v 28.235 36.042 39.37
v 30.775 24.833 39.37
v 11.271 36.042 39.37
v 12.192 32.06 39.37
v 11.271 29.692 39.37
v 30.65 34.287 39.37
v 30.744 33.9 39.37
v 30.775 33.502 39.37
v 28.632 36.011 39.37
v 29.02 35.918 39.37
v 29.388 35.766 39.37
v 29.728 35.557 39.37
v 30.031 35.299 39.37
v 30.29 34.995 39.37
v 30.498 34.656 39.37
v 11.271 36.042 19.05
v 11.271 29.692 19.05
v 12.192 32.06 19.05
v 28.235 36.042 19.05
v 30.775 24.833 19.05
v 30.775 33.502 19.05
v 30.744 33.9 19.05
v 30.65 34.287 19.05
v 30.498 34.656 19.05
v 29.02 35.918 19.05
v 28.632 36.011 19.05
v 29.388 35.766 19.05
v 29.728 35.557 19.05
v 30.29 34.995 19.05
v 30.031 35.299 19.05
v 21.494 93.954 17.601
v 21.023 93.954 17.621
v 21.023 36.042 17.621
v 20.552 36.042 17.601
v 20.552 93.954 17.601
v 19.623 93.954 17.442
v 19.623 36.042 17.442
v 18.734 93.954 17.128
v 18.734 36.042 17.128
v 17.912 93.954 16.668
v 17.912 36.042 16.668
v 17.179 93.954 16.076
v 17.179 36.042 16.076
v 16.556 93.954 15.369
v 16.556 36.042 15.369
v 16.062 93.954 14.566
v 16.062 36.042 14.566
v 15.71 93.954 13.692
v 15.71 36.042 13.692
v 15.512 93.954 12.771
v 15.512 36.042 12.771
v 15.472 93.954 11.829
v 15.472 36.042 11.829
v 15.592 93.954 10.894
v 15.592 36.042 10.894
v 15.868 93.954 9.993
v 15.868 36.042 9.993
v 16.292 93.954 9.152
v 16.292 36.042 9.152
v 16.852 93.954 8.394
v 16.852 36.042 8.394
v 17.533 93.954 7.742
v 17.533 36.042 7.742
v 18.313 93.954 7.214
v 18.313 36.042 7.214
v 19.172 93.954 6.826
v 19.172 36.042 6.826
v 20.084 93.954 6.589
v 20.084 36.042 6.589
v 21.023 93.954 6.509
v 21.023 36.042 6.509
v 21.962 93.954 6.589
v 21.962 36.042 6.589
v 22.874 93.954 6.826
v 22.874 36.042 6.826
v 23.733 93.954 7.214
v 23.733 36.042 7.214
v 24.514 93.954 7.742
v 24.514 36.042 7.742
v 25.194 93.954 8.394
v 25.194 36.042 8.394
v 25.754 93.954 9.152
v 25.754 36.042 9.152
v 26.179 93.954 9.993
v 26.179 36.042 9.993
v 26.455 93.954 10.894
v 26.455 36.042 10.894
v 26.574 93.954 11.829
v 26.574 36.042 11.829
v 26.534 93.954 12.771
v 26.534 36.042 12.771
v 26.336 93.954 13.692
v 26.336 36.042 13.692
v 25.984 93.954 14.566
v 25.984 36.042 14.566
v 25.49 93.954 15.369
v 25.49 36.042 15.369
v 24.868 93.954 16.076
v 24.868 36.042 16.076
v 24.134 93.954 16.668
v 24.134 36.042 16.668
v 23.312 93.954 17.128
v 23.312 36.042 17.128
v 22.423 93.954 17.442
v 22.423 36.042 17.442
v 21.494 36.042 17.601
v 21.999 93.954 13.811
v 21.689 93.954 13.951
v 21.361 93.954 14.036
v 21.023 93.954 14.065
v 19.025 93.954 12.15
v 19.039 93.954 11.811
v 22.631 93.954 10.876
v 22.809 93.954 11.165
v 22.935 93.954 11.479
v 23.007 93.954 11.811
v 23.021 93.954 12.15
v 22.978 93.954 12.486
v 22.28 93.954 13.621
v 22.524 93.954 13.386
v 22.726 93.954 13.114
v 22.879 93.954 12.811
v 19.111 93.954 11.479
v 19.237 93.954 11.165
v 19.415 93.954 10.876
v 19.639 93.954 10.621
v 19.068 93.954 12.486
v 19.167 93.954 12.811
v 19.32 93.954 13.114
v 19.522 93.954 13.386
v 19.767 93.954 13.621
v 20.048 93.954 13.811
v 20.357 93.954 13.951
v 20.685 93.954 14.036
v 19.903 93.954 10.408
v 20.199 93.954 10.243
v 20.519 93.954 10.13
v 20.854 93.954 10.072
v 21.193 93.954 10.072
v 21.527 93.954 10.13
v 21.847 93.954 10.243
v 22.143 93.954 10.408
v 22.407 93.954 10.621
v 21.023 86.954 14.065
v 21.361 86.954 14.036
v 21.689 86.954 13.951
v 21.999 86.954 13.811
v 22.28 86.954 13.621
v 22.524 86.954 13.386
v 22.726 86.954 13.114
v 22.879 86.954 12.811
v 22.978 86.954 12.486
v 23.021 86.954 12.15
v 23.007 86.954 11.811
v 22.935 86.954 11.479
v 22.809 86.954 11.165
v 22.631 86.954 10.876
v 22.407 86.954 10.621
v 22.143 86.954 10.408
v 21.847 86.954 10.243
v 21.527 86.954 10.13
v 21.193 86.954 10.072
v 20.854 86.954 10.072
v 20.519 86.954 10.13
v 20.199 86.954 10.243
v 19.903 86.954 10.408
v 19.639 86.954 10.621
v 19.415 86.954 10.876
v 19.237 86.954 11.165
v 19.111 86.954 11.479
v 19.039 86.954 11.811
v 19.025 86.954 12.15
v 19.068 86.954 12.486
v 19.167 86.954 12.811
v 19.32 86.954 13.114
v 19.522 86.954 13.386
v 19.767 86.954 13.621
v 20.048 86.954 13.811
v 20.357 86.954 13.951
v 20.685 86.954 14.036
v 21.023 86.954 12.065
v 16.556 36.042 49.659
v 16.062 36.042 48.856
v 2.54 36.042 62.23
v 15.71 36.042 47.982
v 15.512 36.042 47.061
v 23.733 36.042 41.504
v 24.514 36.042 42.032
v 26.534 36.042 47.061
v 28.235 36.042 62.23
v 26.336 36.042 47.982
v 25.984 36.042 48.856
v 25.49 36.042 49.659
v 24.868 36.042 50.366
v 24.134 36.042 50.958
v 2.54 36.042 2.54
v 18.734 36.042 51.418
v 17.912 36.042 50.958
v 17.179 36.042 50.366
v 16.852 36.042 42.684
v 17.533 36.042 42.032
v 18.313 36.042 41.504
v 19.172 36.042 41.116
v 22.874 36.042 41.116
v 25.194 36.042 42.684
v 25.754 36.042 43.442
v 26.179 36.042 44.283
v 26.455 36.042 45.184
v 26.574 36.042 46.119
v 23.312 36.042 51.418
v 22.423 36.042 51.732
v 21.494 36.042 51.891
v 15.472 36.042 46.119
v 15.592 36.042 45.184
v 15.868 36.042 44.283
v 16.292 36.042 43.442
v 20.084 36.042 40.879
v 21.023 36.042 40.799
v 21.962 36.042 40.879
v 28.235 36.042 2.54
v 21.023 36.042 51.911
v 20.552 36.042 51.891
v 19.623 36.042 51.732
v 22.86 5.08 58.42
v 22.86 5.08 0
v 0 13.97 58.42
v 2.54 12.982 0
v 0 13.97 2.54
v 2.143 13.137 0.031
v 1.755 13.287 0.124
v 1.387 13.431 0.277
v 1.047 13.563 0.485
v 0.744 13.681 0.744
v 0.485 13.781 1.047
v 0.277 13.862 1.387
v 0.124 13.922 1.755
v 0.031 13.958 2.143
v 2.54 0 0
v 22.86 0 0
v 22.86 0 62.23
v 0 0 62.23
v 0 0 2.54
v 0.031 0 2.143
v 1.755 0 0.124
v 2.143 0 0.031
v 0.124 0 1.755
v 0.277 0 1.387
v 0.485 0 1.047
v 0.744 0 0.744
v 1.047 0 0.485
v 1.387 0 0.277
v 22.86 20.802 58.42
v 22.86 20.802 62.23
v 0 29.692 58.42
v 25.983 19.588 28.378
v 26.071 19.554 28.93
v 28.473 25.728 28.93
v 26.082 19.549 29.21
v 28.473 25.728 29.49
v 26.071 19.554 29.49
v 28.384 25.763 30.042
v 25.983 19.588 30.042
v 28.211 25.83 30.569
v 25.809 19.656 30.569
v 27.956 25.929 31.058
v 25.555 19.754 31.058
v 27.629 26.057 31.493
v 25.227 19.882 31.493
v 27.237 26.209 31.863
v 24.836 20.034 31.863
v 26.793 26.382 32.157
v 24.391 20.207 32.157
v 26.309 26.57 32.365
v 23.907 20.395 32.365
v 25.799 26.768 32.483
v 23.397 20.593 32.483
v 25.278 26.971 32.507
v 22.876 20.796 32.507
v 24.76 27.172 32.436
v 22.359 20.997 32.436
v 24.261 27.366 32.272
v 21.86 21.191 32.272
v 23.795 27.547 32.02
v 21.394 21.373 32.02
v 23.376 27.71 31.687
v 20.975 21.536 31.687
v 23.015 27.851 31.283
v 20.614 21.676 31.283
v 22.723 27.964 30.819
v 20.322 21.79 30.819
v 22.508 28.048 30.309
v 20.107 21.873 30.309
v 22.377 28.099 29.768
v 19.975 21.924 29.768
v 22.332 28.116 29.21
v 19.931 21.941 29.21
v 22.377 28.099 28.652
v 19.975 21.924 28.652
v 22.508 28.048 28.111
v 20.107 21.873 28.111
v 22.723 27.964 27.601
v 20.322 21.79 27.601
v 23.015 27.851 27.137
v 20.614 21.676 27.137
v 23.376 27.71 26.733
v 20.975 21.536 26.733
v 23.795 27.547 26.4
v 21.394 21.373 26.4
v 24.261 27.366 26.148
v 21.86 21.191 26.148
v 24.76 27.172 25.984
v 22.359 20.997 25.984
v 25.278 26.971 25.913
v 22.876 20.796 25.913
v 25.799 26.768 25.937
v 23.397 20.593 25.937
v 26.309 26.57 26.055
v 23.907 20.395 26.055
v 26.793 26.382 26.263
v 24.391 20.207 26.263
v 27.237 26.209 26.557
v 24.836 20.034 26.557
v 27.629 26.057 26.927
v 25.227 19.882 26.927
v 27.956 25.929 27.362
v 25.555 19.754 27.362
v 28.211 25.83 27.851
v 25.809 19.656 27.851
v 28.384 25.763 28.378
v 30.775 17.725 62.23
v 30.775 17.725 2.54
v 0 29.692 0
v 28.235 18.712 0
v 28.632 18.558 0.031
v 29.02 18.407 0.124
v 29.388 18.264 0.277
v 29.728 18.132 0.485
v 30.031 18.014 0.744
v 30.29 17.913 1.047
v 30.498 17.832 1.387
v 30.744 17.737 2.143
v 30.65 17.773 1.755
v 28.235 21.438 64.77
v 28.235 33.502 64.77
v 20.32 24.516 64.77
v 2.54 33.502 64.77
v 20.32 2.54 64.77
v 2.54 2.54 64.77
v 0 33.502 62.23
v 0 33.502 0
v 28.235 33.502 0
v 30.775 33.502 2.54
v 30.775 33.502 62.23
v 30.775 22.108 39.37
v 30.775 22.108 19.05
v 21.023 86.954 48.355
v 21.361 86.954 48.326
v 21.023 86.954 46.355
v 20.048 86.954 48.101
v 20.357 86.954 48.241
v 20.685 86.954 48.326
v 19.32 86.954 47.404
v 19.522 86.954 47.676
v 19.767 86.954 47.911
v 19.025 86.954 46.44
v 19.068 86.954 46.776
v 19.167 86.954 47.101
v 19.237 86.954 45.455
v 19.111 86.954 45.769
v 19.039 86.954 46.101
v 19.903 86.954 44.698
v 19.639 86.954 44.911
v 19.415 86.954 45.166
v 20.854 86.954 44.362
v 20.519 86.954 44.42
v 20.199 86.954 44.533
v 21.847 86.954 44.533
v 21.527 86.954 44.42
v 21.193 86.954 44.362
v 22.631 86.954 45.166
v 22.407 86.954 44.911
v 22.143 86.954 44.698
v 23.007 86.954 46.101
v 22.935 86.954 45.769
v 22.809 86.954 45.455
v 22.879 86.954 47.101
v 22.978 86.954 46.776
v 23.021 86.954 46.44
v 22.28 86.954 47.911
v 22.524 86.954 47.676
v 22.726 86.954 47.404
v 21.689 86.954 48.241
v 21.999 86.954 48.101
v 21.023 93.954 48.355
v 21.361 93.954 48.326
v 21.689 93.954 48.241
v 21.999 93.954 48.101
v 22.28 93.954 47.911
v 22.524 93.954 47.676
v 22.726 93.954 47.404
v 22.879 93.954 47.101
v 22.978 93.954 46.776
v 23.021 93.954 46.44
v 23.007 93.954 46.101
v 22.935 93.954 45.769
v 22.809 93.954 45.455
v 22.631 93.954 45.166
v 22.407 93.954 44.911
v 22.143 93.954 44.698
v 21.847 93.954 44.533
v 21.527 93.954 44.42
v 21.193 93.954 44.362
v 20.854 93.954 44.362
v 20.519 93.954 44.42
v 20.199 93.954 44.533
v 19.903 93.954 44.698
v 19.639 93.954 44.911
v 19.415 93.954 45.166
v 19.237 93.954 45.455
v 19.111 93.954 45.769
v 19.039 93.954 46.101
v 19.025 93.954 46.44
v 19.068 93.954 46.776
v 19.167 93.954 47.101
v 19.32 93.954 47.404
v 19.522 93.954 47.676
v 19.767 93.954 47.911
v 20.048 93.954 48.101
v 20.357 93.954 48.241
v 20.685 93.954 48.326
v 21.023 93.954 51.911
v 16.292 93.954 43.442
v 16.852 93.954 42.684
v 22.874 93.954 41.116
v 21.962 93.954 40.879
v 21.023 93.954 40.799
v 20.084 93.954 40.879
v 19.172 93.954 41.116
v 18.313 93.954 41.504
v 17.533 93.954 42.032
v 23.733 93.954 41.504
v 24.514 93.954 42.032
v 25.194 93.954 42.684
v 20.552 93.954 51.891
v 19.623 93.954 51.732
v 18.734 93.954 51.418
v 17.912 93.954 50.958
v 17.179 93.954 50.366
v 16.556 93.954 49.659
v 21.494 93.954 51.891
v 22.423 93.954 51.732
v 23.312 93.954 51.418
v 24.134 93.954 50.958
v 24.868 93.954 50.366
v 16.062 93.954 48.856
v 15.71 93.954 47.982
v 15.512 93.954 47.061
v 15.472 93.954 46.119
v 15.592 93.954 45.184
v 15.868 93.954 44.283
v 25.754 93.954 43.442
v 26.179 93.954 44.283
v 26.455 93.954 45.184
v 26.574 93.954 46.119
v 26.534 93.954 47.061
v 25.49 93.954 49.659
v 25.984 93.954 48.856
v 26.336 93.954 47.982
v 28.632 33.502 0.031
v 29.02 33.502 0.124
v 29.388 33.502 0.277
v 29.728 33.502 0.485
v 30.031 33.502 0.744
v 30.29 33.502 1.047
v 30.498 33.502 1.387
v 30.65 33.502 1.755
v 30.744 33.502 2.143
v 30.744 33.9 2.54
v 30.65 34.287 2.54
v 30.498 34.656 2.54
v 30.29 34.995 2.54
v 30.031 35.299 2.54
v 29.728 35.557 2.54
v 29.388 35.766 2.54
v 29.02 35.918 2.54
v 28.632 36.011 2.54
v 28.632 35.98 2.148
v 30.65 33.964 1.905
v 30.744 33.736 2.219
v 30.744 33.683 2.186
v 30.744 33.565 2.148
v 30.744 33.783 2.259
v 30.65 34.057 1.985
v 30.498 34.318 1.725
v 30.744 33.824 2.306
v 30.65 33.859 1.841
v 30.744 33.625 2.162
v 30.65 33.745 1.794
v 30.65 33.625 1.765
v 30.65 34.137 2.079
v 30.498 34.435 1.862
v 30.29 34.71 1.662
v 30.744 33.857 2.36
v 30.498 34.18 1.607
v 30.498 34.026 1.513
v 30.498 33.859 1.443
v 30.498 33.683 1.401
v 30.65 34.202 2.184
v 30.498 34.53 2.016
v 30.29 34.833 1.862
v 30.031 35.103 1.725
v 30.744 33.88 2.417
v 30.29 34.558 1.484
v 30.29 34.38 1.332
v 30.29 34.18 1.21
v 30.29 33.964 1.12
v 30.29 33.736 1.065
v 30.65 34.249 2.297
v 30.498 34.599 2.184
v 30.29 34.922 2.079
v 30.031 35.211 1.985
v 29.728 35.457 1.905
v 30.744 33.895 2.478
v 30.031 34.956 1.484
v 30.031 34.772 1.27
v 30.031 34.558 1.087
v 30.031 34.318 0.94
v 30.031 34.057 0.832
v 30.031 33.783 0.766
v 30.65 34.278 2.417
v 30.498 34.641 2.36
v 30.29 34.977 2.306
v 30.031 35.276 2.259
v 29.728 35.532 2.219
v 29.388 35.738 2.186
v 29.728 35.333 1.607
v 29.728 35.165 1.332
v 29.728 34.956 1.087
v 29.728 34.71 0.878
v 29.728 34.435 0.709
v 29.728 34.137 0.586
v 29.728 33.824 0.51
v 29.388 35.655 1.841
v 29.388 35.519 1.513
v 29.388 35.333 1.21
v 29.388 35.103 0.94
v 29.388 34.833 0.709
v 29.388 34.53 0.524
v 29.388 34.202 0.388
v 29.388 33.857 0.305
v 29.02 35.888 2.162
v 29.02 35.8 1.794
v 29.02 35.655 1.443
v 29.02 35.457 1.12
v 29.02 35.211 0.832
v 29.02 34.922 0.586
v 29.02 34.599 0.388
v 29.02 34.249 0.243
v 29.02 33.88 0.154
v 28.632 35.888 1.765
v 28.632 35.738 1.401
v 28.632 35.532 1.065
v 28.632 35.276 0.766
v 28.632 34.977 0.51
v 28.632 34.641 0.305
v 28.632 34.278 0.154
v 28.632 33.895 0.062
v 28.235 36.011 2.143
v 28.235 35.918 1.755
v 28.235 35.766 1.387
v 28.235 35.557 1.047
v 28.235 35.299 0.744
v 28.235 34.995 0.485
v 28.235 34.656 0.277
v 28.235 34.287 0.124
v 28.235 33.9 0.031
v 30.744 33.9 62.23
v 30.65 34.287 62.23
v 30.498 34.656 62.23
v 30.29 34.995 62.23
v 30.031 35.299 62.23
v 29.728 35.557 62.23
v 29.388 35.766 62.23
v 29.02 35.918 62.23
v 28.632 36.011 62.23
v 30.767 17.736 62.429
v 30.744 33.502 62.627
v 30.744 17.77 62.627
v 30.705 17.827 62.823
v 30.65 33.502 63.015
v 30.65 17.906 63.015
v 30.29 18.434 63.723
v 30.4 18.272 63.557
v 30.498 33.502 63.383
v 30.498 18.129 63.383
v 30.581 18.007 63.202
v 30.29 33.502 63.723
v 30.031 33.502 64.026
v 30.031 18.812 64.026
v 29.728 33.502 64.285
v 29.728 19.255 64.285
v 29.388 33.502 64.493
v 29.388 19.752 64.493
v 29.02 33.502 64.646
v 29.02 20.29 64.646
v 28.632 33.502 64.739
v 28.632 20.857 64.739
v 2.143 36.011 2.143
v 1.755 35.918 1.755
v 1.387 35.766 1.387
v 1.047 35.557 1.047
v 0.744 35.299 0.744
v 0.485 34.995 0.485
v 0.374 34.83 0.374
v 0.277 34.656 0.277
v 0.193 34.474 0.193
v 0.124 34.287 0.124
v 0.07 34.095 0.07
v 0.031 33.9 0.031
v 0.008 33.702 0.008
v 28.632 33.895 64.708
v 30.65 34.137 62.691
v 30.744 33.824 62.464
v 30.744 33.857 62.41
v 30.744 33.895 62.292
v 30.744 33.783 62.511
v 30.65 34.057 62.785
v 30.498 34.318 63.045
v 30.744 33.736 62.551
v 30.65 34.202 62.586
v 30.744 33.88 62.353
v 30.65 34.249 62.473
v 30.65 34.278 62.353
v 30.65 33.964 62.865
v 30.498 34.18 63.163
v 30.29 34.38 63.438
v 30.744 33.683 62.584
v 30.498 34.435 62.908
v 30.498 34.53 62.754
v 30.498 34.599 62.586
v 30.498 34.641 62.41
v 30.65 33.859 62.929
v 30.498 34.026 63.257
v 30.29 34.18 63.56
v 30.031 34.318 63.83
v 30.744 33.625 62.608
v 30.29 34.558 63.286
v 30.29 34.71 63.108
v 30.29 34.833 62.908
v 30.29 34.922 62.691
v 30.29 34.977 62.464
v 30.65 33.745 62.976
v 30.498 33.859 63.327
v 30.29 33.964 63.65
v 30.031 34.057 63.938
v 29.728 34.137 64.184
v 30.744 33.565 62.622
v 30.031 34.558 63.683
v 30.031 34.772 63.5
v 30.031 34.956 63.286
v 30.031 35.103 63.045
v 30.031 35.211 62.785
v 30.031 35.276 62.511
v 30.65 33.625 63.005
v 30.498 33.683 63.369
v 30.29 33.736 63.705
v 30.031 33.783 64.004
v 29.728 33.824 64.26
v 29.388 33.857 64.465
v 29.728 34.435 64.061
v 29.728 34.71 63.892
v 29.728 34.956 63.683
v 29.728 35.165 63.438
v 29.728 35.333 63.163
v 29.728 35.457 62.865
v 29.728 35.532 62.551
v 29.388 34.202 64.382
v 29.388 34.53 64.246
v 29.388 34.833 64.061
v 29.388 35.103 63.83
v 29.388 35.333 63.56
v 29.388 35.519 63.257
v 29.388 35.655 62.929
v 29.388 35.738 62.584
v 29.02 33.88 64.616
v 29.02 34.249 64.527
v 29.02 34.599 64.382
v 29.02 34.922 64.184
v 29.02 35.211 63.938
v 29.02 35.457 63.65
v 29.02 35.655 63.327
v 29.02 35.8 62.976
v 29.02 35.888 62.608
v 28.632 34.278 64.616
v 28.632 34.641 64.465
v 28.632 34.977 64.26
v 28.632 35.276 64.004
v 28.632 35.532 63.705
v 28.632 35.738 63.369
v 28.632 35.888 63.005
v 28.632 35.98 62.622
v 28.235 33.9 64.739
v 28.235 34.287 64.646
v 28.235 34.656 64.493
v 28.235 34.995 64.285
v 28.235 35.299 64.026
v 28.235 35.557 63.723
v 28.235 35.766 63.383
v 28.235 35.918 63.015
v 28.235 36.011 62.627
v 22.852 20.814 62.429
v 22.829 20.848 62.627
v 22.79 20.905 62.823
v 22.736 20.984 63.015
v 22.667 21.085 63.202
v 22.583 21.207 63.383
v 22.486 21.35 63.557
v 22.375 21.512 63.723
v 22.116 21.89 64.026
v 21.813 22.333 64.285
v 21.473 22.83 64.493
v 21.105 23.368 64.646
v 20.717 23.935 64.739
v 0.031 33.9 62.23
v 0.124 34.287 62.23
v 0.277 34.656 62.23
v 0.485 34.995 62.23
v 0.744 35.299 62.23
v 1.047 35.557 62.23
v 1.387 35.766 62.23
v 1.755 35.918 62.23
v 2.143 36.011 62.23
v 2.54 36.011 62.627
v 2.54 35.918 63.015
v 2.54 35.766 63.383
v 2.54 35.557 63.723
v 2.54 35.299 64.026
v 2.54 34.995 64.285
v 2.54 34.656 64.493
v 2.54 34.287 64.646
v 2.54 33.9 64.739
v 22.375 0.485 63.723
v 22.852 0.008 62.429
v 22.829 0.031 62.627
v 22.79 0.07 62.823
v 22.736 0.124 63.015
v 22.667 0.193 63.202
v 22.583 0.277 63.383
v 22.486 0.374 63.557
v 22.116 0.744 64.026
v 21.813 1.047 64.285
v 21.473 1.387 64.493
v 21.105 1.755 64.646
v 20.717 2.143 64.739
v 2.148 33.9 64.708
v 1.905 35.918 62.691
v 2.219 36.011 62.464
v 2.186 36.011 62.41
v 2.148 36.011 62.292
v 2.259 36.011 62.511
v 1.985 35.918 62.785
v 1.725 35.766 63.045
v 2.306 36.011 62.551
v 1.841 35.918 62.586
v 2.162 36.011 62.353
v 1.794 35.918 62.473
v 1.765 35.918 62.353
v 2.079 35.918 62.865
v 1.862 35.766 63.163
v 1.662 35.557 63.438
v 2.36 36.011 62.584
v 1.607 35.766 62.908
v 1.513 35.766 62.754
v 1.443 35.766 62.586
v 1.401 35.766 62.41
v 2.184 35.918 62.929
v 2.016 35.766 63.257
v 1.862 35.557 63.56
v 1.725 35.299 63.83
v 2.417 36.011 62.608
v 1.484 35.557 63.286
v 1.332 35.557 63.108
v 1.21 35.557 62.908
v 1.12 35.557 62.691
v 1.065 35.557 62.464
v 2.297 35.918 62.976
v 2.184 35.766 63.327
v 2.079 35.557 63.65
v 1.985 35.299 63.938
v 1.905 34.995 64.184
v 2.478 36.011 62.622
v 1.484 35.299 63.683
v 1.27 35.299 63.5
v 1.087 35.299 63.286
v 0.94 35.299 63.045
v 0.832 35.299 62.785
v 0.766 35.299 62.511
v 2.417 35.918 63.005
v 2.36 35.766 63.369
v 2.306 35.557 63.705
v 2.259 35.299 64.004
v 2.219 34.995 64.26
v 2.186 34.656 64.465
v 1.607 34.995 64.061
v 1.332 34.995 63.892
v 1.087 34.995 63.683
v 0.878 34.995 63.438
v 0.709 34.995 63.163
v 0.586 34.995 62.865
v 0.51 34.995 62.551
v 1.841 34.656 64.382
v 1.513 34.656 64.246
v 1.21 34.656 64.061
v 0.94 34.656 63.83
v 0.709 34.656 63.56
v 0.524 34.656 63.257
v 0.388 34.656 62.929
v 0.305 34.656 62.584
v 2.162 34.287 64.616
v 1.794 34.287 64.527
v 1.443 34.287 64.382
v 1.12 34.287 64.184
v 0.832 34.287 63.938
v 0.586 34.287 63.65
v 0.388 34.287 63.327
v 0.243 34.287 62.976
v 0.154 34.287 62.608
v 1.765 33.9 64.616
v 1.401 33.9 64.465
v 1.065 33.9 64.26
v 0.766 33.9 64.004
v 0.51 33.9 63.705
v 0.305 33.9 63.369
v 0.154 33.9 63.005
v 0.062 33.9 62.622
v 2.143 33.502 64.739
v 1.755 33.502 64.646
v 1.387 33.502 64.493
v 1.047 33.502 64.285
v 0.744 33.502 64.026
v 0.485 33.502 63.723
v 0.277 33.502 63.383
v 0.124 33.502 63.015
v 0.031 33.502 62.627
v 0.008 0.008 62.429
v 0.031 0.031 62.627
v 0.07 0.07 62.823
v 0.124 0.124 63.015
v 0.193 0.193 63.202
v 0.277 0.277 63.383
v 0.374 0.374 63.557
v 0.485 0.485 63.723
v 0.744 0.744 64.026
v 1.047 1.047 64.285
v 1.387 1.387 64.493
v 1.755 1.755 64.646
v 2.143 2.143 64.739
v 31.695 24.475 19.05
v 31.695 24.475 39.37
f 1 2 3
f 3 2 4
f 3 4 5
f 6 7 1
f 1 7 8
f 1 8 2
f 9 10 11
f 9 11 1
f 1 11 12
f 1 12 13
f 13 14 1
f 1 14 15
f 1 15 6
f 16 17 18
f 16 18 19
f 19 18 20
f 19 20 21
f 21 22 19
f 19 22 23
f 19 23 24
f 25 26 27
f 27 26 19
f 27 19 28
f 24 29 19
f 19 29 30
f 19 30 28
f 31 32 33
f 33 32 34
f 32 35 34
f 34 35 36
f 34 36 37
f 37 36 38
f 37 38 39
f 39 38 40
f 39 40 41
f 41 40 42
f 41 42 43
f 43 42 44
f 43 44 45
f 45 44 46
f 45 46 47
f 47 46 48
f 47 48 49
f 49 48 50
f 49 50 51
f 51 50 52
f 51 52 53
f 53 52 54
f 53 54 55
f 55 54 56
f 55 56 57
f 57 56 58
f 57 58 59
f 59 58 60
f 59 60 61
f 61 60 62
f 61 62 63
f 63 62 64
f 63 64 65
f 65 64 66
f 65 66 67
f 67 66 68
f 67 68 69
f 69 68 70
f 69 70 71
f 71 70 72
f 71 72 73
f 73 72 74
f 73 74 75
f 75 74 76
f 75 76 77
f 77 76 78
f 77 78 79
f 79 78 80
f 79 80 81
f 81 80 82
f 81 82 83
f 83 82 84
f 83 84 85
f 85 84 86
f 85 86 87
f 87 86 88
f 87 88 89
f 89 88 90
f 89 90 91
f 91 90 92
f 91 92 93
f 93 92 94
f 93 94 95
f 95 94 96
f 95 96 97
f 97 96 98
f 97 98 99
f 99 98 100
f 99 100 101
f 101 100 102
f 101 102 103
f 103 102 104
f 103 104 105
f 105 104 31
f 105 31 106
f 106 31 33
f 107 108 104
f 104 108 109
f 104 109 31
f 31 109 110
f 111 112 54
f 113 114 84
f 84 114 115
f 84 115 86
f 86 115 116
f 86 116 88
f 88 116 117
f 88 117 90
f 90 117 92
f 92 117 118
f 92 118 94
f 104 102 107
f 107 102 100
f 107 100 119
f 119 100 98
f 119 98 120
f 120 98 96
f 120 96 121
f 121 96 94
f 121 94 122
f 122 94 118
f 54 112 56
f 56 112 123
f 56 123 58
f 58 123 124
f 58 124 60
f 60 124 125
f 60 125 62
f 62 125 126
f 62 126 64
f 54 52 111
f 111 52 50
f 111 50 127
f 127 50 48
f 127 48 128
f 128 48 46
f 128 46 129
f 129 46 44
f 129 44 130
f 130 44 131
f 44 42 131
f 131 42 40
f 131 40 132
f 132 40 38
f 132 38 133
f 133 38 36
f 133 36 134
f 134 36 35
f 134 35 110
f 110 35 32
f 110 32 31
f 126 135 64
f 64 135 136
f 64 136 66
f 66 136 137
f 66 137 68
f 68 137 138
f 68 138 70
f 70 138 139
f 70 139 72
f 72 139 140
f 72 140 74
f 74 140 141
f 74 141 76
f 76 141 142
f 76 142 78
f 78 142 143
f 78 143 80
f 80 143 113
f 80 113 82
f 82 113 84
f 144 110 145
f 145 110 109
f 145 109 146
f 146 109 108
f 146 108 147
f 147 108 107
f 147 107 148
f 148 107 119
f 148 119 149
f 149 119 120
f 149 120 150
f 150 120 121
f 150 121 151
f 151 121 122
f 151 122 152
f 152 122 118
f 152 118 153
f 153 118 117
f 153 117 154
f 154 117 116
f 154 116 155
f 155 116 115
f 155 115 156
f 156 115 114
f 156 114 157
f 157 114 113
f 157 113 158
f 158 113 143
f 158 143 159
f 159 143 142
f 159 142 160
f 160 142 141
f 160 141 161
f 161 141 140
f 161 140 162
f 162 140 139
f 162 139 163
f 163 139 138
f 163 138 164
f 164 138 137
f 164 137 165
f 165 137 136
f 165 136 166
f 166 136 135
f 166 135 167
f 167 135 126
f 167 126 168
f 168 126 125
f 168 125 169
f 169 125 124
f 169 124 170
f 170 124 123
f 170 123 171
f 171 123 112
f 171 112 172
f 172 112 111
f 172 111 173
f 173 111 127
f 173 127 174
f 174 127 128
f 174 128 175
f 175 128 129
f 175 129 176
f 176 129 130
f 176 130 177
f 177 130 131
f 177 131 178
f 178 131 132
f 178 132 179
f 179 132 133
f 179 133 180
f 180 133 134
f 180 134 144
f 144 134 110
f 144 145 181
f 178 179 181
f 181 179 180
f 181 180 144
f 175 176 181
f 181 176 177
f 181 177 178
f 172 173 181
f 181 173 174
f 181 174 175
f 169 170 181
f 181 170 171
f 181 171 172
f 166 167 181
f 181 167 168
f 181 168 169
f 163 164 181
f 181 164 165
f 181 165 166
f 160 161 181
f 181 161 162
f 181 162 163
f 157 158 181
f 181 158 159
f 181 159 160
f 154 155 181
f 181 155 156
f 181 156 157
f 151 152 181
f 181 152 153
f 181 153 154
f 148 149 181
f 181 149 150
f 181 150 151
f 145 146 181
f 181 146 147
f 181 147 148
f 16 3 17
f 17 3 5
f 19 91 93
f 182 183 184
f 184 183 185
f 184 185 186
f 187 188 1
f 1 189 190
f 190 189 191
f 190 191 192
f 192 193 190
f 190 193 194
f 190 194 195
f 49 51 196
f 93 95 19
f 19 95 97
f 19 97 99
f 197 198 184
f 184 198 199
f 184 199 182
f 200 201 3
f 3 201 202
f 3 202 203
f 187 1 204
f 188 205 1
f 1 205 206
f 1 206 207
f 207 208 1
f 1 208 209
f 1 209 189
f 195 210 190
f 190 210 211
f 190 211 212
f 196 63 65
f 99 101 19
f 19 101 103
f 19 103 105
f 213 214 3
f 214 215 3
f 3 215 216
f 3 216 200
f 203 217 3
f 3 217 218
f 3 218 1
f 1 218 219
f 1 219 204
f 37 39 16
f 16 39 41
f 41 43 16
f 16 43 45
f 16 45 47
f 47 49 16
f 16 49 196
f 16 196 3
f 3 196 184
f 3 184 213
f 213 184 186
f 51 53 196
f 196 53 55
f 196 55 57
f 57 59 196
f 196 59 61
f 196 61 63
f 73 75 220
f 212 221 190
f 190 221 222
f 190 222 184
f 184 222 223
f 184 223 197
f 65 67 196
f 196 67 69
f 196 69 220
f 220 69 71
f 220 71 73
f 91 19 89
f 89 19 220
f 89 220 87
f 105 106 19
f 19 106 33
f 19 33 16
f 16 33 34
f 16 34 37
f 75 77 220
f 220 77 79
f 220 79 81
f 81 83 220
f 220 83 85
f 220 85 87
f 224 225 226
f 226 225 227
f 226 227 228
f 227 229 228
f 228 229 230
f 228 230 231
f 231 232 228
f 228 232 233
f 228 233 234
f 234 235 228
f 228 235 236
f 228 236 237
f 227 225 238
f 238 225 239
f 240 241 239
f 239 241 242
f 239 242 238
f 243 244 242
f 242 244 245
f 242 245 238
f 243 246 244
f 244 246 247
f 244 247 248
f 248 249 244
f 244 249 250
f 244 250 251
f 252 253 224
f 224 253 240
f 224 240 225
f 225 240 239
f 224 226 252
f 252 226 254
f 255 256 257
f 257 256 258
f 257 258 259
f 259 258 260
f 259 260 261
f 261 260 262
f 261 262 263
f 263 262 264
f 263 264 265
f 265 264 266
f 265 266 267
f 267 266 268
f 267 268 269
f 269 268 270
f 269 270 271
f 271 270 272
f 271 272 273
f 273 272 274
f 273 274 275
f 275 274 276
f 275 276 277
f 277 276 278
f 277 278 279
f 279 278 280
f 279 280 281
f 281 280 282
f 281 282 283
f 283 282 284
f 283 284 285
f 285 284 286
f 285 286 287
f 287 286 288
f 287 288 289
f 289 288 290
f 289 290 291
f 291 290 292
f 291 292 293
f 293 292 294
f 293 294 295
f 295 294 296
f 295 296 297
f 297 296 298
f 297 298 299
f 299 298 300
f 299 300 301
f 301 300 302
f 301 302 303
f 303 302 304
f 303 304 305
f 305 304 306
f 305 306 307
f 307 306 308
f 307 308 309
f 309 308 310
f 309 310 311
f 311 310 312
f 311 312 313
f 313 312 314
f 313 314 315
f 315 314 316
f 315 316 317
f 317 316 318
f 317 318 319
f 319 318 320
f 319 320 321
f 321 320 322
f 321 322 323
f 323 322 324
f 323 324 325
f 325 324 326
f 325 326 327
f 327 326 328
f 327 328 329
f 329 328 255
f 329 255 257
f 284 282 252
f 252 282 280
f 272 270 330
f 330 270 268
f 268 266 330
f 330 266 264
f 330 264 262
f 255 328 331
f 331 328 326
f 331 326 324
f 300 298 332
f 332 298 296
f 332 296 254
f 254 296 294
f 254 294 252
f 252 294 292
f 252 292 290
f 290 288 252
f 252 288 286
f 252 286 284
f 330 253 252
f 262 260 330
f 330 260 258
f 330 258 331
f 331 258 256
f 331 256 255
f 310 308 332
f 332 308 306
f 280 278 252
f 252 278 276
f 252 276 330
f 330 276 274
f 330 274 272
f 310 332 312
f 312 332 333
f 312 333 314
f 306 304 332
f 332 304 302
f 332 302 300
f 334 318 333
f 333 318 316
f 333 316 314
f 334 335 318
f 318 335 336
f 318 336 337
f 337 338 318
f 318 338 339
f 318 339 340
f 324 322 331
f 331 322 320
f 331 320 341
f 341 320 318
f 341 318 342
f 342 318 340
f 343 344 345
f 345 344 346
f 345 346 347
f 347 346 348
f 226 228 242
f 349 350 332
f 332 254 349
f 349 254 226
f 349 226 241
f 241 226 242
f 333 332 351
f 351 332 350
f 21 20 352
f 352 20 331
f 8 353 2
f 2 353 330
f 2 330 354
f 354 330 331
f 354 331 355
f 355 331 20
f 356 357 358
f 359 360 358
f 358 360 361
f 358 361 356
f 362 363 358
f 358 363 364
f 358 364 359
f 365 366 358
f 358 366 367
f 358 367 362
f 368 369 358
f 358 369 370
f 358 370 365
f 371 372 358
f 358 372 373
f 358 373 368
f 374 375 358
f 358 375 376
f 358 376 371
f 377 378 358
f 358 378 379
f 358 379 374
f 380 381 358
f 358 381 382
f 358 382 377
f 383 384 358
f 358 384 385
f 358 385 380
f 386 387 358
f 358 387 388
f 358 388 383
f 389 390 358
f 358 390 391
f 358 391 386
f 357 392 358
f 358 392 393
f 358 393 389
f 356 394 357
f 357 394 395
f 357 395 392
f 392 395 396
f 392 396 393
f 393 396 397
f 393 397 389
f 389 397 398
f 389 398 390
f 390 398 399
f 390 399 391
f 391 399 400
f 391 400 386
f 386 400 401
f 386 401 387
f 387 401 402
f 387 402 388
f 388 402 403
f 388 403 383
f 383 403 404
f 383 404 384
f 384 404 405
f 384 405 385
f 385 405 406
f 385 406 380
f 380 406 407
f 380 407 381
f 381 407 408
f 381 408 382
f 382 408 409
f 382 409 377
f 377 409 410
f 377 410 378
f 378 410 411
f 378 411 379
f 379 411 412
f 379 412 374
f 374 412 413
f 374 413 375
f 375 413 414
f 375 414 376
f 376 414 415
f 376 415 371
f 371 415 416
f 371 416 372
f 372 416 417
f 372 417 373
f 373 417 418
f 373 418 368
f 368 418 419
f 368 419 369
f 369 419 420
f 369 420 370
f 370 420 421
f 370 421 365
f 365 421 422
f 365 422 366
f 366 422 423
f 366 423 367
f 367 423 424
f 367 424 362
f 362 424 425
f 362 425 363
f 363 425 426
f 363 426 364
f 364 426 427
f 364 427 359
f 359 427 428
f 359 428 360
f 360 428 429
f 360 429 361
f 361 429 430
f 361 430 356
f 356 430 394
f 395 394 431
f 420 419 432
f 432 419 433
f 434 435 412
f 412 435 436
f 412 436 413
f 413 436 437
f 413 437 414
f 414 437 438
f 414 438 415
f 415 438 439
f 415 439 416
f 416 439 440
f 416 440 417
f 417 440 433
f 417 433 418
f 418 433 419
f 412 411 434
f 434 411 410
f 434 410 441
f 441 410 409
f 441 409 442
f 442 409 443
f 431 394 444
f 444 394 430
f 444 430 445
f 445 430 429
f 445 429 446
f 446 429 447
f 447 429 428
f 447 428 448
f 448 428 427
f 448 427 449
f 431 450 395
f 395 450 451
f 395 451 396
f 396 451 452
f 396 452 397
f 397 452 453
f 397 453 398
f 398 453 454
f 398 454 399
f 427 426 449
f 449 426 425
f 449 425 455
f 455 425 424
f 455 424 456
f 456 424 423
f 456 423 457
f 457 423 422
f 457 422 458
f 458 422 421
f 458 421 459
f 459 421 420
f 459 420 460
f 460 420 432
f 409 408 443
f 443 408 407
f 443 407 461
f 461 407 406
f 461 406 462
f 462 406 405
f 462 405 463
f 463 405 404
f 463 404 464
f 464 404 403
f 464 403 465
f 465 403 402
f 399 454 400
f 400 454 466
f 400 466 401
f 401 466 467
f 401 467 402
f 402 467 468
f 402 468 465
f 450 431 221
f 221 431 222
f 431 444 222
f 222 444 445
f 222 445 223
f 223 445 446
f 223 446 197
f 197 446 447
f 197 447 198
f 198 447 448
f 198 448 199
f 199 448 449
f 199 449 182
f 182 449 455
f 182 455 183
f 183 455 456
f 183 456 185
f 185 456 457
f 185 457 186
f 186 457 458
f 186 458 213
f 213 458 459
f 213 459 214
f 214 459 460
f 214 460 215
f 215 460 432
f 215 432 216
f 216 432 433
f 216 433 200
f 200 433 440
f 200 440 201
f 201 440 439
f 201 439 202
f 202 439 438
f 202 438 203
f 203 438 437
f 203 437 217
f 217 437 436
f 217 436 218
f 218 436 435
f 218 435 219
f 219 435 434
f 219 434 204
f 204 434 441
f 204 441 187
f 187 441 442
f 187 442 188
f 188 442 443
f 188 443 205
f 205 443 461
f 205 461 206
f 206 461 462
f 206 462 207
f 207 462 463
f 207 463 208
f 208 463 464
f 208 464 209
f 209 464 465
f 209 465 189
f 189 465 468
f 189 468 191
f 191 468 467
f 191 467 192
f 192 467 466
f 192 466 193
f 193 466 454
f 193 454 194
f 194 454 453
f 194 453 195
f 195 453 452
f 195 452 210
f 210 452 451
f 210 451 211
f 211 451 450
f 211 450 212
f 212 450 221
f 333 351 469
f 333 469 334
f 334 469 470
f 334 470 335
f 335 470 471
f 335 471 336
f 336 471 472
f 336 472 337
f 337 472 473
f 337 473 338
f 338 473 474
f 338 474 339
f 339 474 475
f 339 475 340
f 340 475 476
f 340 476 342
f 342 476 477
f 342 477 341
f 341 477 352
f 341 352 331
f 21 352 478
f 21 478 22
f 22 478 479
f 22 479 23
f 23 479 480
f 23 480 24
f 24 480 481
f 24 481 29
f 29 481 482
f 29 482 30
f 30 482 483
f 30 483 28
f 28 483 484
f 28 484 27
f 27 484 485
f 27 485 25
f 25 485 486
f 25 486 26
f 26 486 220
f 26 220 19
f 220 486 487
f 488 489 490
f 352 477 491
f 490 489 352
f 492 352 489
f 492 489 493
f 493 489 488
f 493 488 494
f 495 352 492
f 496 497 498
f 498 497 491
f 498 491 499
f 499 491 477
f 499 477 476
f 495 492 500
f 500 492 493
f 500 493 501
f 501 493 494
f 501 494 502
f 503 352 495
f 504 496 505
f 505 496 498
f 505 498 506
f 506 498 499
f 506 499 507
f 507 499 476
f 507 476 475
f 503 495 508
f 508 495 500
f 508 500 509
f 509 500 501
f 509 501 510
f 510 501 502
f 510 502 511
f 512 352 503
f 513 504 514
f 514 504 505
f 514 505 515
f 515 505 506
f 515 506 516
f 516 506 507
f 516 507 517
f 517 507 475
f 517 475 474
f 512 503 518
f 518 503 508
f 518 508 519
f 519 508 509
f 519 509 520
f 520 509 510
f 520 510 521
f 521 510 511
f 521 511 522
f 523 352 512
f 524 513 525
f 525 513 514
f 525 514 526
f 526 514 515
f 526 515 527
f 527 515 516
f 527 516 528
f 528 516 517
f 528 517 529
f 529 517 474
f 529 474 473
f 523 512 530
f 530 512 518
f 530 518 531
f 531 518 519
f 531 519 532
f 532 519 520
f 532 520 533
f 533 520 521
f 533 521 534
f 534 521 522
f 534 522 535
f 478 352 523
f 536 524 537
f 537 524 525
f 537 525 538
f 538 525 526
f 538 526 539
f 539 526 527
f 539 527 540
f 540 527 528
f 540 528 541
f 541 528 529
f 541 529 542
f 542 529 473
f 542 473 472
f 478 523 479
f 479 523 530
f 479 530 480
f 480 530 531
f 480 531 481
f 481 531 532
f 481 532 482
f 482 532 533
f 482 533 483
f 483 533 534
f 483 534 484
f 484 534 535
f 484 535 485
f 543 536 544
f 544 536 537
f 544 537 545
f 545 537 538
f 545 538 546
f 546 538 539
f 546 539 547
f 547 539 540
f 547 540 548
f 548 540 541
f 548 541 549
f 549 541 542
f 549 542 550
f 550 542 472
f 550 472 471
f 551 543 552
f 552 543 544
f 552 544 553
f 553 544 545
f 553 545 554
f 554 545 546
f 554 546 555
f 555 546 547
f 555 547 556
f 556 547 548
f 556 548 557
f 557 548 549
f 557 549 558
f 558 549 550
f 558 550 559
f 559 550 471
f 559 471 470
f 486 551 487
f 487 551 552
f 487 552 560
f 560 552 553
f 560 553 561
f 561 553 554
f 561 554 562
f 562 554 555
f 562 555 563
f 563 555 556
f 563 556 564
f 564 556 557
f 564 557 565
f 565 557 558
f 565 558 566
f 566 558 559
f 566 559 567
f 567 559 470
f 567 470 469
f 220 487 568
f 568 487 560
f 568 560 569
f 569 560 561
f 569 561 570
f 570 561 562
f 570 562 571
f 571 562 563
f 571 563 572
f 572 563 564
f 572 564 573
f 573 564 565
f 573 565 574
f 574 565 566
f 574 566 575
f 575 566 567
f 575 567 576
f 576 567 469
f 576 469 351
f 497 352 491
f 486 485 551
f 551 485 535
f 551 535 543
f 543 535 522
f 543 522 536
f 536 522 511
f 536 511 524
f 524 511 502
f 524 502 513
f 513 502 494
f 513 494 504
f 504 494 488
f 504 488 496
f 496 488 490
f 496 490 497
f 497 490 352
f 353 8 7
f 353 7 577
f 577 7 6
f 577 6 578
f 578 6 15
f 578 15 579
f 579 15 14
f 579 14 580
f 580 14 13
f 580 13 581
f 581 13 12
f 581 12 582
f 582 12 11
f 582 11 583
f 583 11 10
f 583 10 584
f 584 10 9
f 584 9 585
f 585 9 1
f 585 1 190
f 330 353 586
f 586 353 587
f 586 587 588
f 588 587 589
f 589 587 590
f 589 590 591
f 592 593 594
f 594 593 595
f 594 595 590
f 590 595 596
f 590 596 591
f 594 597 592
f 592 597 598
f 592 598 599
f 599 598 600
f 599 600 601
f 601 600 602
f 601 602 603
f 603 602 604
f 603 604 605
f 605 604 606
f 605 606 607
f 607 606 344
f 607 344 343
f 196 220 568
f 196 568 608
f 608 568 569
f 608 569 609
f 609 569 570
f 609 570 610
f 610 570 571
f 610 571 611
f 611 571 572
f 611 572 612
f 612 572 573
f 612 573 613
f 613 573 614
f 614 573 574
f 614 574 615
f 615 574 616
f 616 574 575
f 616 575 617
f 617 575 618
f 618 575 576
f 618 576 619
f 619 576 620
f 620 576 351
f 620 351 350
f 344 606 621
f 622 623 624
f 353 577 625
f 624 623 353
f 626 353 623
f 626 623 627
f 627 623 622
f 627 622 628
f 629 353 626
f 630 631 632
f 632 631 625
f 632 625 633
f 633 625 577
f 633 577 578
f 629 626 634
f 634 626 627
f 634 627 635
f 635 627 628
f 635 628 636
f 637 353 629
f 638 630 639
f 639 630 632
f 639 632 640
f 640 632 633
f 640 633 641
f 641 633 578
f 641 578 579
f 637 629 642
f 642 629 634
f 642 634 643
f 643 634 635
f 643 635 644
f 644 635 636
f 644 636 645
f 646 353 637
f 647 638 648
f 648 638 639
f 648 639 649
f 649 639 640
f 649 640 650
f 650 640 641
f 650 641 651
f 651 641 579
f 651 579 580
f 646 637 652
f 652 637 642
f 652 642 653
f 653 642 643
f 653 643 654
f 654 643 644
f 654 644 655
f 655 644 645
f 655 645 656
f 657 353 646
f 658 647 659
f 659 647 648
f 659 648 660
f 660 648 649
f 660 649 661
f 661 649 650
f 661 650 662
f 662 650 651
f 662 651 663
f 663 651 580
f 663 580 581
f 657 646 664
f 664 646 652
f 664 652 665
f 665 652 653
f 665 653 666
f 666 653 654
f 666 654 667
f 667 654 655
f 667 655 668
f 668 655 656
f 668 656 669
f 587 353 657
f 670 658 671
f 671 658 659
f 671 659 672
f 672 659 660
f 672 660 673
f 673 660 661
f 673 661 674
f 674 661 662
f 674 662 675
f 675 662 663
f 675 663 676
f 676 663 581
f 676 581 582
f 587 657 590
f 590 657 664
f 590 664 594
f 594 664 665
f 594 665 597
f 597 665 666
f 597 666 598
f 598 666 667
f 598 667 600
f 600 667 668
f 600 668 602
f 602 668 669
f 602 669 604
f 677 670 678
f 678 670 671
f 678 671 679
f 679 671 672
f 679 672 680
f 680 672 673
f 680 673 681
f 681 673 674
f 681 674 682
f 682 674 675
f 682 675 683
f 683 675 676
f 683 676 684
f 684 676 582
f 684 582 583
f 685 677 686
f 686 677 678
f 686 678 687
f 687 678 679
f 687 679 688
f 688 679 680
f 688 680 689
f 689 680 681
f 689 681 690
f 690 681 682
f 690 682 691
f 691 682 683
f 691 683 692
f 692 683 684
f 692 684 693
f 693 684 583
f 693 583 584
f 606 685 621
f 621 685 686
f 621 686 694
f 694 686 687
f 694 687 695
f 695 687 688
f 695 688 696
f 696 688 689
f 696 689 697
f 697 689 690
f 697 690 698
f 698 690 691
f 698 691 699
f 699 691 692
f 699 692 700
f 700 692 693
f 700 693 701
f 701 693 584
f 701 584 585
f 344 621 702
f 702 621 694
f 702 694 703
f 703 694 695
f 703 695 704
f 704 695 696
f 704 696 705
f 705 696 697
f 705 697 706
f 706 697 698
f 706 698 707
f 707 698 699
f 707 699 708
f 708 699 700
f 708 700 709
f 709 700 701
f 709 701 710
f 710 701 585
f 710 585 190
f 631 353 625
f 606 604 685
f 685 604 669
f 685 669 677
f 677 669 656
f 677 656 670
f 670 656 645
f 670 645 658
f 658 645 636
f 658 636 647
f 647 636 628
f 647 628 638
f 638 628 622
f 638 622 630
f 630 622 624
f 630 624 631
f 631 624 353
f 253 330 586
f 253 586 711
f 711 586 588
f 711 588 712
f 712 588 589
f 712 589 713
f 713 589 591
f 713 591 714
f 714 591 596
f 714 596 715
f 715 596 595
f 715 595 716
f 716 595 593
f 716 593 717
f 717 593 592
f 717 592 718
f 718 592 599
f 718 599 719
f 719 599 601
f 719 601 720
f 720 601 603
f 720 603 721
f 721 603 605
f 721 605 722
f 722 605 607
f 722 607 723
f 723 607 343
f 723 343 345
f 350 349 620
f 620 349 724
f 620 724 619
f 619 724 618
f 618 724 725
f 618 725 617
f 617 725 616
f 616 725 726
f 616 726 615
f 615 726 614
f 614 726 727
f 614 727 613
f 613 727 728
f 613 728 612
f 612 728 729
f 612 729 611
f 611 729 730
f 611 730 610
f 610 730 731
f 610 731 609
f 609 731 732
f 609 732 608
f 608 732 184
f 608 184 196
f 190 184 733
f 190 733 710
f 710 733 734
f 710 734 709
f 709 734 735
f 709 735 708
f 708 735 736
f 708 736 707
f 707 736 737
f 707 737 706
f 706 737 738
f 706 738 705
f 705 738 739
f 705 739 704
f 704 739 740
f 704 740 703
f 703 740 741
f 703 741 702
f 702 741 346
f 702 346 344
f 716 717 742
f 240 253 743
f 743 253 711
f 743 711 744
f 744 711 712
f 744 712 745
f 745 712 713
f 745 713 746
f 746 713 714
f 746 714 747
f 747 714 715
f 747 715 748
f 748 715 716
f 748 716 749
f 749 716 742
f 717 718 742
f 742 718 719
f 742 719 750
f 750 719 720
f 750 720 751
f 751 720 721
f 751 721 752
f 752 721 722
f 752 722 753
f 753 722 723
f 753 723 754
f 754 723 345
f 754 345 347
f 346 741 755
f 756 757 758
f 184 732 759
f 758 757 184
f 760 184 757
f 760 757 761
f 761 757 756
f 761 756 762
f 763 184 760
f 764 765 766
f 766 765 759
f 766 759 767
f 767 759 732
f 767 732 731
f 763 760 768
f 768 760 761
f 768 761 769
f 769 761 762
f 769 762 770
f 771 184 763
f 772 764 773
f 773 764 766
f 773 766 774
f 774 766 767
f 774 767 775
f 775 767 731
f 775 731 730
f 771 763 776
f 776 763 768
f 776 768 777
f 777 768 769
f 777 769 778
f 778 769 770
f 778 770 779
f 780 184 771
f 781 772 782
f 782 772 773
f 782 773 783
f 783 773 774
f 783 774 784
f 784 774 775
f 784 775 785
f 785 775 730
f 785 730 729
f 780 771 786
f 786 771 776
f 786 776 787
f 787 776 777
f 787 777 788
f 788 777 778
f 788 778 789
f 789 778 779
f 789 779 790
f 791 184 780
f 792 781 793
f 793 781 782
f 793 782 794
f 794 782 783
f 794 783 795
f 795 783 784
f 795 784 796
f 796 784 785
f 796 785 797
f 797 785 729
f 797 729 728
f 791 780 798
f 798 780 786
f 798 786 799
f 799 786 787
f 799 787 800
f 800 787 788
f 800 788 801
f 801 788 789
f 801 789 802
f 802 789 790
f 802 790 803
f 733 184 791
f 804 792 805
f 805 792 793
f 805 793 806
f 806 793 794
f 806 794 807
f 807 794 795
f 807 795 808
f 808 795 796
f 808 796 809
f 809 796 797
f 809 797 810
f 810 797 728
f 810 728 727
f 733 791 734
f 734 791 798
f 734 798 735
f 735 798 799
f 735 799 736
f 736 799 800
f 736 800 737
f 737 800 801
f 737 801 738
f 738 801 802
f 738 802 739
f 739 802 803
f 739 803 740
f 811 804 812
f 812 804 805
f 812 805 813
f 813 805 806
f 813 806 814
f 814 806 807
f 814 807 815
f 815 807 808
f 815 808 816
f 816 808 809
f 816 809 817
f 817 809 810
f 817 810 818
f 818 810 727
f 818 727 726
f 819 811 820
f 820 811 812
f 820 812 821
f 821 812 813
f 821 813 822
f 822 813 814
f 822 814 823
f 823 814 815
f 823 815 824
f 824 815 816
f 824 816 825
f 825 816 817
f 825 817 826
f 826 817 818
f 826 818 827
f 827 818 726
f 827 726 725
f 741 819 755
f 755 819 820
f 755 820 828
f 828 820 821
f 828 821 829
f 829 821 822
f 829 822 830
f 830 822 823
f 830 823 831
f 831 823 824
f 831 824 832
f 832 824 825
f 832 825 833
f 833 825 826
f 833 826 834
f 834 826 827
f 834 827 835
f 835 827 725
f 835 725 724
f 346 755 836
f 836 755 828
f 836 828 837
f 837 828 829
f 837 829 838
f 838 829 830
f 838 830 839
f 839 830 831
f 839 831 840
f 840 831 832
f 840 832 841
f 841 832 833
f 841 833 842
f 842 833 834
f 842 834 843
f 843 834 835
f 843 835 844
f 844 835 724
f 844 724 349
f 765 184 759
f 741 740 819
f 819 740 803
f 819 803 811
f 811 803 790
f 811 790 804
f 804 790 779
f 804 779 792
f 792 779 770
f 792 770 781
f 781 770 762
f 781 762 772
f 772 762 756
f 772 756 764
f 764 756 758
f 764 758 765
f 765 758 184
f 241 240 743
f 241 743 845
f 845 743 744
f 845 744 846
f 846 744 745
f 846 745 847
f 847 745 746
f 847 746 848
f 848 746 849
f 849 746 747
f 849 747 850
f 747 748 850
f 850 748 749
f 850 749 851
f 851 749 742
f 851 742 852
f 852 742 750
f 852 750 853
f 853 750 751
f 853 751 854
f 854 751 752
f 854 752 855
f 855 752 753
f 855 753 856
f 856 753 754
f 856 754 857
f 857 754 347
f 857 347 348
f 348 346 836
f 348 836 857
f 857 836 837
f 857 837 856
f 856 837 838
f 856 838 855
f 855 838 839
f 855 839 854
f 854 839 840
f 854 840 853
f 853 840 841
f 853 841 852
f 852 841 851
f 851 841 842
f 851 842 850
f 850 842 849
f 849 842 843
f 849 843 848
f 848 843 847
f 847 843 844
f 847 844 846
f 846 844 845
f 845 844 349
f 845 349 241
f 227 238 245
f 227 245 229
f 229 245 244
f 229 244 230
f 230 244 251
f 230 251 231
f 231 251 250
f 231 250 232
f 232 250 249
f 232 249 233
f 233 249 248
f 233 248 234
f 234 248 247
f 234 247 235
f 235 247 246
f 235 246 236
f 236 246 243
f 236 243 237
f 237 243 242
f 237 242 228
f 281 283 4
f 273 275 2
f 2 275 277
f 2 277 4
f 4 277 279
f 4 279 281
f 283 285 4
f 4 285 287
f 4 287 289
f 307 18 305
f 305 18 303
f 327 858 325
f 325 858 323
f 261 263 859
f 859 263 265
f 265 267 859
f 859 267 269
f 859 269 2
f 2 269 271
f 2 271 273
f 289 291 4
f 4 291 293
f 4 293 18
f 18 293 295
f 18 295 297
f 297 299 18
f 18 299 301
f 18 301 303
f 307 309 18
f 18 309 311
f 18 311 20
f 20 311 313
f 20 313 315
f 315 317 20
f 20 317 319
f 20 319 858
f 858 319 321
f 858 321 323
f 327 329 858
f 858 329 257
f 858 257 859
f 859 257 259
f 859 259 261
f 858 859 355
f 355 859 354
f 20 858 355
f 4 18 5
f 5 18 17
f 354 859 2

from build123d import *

# Parameters (mm, degrees)
BOSS_EXTRUDE1_DEPTH  = 58.42
SKETCH2_W            = 22.86
SKETCH2_H            = 29.69248518
BOSS_EXTRUDE2_DEPTH  = 6.35
BOSS_EXTRUDE3_DEPTH  = 58.42
CUT_EXTRUDE1_DEPTH   = 58.42
BOSS_EXTRUDE5_DEPTH  = 19.05
BOSS_EXTRUDE6_DEPTH  = 19.05
SKETCH8_R            = 3.3
CUT_EXTRUDE2_DEPTH   = 4.085289
SKETCH9_R            = 5.55625
BOSS_EXTRUDE7_DEPTH  = 64.262
SKETCH11_R           = 1.999996
CUT_EXTRUDE3_DEPTH   = 6.99999997
BOSS_EXTRUDE8_DEPTH  = 6.35
BOSS_EXTRUDE9_DEPTH  = 6.35
FILLET3_R            = 2.54
BOSS_EXTRUDE10_START = 2.54
SKETCH15_W           = 20.926247949
SKETCH15_H           = 20.32
SKETCH15_R           = 3.3
BOSS_EXTRUDE10_DEPTH = 2.54


with BuildPart() as part:
    # Sketch1 → Boss-Extrude1 (new body)
    with BuildSketch(Plane.XY):
        Polygon((0, 0), (22.86, 0), (22.86, 5.08), (0, 13.97), align=None)
    extrude(amount=BOSS_EXTRUDE1_DEPTH)

    # Sketch2 → Boss-Extrude2 (add)
    with BuildSketch(Plane.XY.offset(58.42)):
        with Locations((11.43, 14.84624259)):
            Rectangle(SKETCH2_W, SKETCH2_H)
    extrude(amount=BOSS_EXTRUDE2_DEPTH)

    # Sketch3 → Boss-Extrude3 (add)
    with BuildSketch(Plane(origin=(0, 0, 58.42), x_dir=(-1, 0, 0), z_dir=(0, 0, -1))):
        Polygon((-22.86, 29.69248518), (0, 29.69248518), (-30.774794254, 17.724509637), (-30.774794254, 29.69248518), align=None)
    extrude(amount=BOSS_EXTRUDE3_DEPTH)

    # Sketch5 → Cut-Extrude1 (cut)
    with BuildSketch(Plane(origin=(0, 0, 0), x_dir=(-1, 0, 0), z_dir=(0, 0, -1))):
        Polygon((-30.774794254, 22.107844851), (-11.271433408, 29.69248518), (-30.774794254, 29.69248518), align=None)
    extrude(amount=-CUT_EXTRUDE1_DEPTH, mode=Mode.SUBTRACT)

    # Sketch7 → Boss-Extrude6 (add)
    with BuildSketch(Plane.XY.offset(58.42)):
        Polygon((30.774794254, 22.107844851), (30.774794254, 29.69248518), (11.271433408, 29.69248518), align=None)
    extrude(amount=-BOSS_EXTRUDE6_DEPTH)

    # Sketch8 → Cut-Extrude2 (cut)
    with BuildSketch(Plane(origin=(11.510866943, 29.599372139, 0), x_dir=(0.9320046715412958, -0.36244626115494866, 0), z_dir=(0.36244626115494866, 0.9320046715412958, 0))):
        with Locations(Location((13.92329977, -29.21, 0), (0, 0, 180))):
            Circle(SKETCH8_R)
    extrude(amount=-CUT_EXTRUDE2_DEPTH, mode=Mode.SUBTRACT)



with BuildPart() as body_2:
    # Sketch6 → Boss-Extrude5 (new body)
    with BuildSketch(Plane(origin=(0, 0, 0), x_dir=(-1, 0, 0), z_dir=(0, 0, -1))):
        Polygon((-30.774794254, 29.69248518), (-30.774794254, 22.107844851), (-11.271433408, 29.69248518), align=None)
    extrude(amount=-BOSS_EXTRUDE5_DEPTH)


with BuildPart() as part_1:
    add(part.part)

    add(body_2.part)  # Boss-Extrude7 merges body 2
    # Sketch9 → Boss-Extrude7 (add)
    with BuildSketch(Plane(origin=(0, 29.69248518, 0), x_dir=(1, 0, 0), z_dir=(0, 1, 0))):
        with Locations(Location((21.023113831, -12.065, 0), (0, 0, 270))):
            Circle(SKETCH9_R)
        with Locations(Location((21.023113831, -46.355, 0), (0, 0, 270))):
            Circle(SKETCH9_R)
    extrude(amount=BOSS_EXTRUDE7_DEPTH)

    # Sketch11 → Cut-Extrude3 (cut)
    with BuildSketch(Plane(origin=(0, 93.95448518, 0), x_dir=(1, 0, 0), z_dir=(0, 1, 0))):
        with Locations(Location((21.023113831, -12.065, 0), (0, 0, 270))):
            Circle(SKETCH11_R)
        with Locations(Location((21.023113831, -46.355, 0), (0, 0, 270))):
            Circle(SKETCH11_R)
    extrude(amount=-CUT_EXTRUDE3_DEPTH, mode=Mode.SUBTRACT)

    # Sketch12 → Boss-Extrude8 (add)
    with BuildSketch(Plane.XY.offset(58.42)):
        Polygon((22.86, 29.69248518), (30.774794254, 29.69248518), (30.774794254, 17.724509637), (22.86, 20.80248518), align=None)
    extrude(amount=BOSS_EXTRUDE8_DEPTH)

    # Sketch14 → Boss-Extrude9 (add)
    with BuildSketch(Plane(origin=(0, 29.69248518, 0), x_dir=(1, 0, 0), z_dir=(0, 1, 0))):
        Polygon((0, 0), (0, -64.77), (30.774794254, -64.77), (30.774794254, -39.37), (11.271433408, -39.37), (11.271433408, -19.05), (30.774794254, -19.05), (30.774794254, 0), align=None)
    extrude(amount=BOSS_EXTRUDE9_DEPTH)

    # Fillet3
    fillet3_edges = [part_1.edges().sort_by_distance(p)[0] for p in [
        (0, 18.02124259, 64.77),
        (15.387397127, 36.04248518, 64.77),
        (30.774794254, 26.883497409, 0),
        (30.774794254, 26.883497409, 64.77),
        (26.817397127, 19.263497409, 64.77),
        (22.86, 10.40124259, 64.77),
        (11.43, 0, 64.77),
        (0, 6.985, 0),
        (15.387397127, 36.04248518, 0),
        (0, 36.04248518, 32.385),
        (30.774794254, 36.04248518, 52.07),
        (30.774794254, 36.04248518, 9.525),
    ]]
    fillet(fillet3_edges, radius=FILLET3_R)

    # Sketch15 → Boss-Extrude10 (add)
    with BuildSketch(Plane(origin=(11.510866943, 29.599372139, 0), x_dir=(0.9320046715412958, -0.3624462611549486, 0), z_dir=(0.3624462611549486, 0.9320046715412958, 0)).offset(BOSS_EXTRUDE10_START)):
        with Locations((10.206222328, -29.21)):
            Rectangle(SKETCH15_W, SKETCH15_H)
        with Locations(Location((13.92329977, -29.21, 0), (0, 0, 180))):
            Circle(SKETCH15_R, mode=Mode.SUBTRACT)
    extrude(amount=-BOSS_EXTRUDE10_DEPTH)


solid = part_1.part
